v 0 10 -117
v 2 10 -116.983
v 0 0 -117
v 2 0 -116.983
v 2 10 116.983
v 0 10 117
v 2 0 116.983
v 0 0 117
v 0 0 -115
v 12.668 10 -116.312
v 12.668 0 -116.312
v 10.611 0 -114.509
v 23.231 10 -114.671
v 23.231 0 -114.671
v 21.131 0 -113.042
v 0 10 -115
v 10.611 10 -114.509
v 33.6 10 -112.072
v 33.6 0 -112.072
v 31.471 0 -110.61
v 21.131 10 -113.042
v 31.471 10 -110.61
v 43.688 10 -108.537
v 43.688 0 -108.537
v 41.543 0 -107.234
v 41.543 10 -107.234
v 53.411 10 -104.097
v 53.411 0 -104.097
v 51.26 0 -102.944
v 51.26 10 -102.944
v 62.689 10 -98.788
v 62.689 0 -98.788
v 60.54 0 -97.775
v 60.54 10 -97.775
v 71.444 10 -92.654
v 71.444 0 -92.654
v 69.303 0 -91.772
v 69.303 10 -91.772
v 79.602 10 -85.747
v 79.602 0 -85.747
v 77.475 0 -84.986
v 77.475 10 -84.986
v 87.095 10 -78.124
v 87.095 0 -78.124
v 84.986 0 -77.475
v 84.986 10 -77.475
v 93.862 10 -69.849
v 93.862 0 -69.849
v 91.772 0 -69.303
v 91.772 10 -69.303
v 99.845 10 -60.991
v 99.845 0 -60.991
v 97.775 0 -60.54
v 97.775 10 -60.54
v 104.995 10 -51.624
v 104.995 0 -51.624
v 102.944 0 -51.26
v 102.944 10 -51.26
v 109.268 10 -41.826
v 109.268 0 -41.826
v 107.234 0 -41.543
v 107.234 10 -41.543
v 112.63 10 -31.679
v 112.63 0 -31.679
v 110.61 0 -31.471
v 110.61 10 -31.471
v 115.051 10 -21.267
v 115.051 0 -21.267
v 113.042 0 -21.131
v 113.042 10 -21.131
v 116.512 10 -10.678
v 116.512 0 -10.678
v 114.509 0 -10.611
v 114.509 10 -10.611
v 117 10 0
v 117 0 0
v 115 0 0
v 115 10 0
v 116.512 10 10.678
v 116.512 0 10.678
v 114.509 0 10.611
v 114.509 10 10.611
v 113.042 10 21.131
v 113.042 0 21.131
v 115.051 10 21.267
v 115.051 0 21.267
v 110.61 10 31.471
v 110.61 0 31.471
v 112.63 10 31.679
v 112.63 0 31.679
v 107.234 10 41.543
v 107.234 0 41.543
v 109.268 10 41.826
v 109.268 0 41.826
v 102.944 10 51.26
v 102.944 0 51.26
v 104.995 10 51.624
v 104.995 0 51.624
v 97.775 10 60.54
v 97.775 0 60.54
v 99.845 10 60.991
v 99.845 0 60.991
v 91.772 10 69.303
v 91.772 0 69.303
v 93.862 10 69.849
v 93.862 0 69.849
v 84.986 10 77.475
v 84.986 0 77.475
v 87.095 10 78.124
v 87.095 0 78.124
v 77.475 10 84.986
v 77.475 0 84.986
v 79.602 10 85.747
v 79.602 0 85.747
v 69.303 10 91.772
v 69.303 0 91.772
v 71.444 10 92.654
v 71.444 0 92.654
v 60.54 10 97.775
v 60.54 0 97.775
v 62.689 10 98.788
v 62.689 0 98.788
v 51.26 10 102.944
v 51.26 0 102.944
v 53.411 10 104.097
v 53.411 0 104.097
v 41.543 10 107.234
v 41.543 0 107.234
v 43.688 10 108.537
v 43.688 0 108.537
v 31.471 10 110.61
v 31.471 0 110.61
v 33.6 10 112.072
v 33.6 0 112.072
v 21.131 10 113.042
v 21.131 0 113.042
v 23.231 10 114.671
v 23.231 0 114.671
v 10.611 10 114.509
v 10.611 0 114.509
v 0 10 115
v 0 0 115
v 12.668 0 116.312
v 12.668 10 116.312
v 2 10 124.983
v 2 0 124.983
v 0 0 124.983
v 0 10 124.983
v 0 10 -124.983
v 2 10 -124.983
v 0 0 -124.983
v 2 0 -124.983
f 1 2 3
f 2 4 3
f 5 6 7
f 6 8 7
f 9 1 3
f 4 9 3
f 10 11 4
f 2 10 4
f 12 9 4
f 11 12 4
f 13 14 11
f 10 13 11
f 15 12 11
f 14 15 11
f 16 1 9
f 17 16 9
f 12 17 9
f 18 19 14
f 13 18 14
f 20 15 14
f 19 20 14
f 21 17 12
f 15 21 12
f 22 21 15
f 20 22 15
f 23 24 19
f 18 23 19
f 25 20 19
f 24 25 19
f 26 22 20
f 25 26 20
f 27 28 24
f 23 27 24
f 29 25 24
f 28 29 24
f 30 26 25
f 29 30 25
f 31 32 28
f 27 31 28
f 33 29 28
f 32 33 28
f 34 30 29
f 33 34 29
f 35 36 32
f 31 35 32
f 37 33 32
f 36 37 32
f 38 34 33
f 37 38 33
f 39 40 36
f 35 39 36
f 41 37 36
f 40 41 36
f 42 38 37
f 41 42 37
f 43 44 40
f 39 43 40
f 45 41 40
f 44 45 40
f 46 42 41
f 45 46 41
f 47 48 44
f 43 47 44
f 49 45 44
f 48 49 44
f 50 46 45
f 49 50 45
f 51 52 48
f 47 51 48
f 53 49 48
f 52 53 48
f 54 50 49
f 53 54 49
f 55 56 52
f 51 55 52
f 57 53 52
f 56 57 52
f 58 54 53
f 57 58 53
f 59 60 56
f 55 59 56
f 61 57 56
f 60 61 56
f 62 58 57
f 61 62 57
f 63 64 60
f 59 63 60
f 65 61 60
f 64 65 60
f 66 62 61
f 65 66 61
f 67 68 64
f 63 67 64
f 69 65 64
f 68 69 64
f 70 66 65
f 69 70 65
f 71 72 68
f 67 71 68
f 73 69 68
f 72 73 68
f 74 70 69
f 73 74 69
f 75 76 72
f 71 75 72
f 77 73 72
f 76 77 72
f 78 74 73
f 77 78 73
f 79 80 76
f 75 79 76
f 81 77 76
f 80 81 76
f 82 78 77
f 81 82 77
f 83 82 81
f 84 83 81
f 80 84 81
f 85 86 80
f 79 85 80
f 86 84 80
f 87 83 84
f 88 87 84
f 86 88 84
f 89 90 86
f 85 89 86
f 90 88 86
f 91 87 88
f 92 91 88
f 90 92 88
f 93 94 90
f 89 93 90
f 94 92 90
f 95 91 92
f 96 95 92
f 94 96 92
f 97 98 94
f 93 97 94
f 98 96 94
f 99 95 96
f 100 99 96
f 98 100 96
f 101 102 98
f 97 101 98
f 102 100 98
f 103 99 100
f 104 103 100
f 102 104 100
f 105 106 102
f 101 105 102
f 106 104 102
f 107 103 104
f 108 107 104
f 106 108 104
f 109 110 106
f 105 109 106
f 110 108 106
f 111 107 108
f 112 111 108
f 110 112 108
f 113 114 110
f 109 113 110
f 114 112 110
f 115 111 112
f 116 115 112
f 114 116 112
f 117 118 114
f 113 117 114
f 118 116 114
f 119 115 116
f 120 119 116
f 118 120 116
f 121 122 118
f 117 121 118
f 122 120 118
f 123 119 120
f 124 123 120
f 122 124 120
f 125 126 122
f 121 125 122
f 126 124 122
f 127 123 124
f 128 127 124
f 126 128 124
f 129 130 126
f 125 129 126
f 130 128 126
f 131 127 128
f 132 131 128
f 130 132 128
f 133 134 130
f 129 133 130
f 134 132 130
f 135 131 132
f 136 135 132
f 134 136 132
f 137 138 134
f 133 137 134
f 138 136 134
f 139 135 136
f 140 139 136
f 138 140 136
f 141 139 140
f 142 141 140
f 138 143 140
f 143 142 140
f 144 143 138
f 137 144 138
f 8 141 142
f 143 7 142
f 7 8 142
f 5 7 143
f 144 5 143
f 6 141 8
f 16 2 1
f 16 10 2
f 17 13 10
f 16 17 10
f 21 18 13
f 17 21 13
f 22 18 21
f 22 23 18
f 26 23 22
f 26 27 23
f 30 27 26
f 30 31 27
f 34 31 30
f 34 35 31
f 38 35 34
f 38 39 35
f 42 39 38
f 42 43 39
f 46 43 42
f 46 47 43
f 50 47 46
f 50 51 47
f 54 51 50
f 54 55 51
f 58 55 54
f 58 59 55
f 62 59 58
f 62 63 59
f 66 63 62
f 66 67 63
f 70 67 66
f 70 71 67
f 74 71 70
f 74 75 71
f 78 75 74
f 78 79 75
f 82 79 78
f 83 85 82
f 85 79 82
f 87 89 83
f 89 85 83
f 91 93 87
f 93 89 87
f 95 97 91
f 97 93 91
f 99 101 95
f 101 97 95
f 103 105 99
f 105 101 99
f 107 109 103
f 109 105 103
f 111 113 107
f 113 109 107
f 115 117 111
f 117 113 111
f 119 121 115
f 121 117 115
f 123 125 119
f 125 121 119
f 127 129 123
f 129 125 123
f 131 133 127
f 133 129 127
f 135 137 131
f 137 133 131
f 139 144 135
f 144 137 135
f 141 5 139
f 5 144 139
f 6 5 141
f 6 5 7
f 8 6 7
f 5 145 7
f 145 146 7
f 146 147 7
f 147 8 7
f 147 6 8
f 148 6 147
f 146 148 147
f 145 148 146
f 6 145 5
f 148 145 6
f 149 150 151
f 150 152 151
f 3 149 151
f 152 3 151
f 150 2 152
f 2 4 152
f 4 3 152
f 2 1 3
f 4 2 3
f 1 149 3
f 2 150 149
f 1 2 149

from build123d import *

# Parameters (mm, degrees)
BOSS_EXTRUDE1_DEPTH   = 10
BOSS_EXTRUDE1_2_DEPTH = 10
BOSS_EXTRUDE1_3_DEPTH = 10


with BuildPart() as part:
    # Sketch1 → Boss-Extrude1 (new body)
    with BuildSketch(Plane(origin=(0, 0, 0), x_dir=(1, 0, 0), z_dir=(0, 1, 0))):
        with BuildLine():
            Line((2, 116.982904734), (0, 117))
            Line((0, 117), (0, 115))
            ThreePointArc((0, 115), (81.317279836, 81.317279836), (115, 0))
            ThreePointArc((115, 0), (81.317279836, -81.317279836), (0, -115))
            Line((0, -115), (0, -117))
            Line((0, -117), (2, -116.982904734))
            ThreePointArc((2, -116.982904734), (83.435603911, -82.021338687), (117, 0))
            ThreePointArc((117, 0), (83.435603911, 82.021338687), (2, 116.982904734))
        make_face()
    extrude(amount=BOSS_EXTRUDE1_DEPTH)


with BuildPart() as body_2:
    # Sketch1 → Boss-Extrude1 2 (new body)
    with BuildSketch(Plane(origin=(0, 0, 0), x_dir=(1, 0, 0), z_dir=(0, 1, 0))):
        with BuildLine():
            ThreePointArc((2, -116.982904734), (1.00003653, -116.995726105), (0, -117))
            Line((0, -117), (0, -124.982904734))
            Line((0, -124.982904734), (2, -124.982904734))
            Line((2, -124.982904734), (2, -116.982904734))
        make_face()
    extrude(amount=BOSS_EXTRUDE1_2_DEPTH)


with BuildPart() as body_3:
    # Sketch1 → Boss-Extrude1 3 (new body)
    with BuildSketch(Plane(origin=(0, 0, 0), x_dir=(1, 0, 0), z_dir=(0, 1, 0))):
        with BuildLine():
            Line((0, 124.982904734), (0, 117))
            ThreePointArc((0, 117), (1.00003653, 116.995726105), (2, 116.982904734))
            Line((2, 116.982904734), (2, 124.982904734))
            Line((2, 124.982904734), (0, 124.982904734))
        make_face()
    extrude(amount=BOSS_EXTRUDE1_3_DEPTH)


solid = Compound([part.part, body_2.part, body_3.part])
